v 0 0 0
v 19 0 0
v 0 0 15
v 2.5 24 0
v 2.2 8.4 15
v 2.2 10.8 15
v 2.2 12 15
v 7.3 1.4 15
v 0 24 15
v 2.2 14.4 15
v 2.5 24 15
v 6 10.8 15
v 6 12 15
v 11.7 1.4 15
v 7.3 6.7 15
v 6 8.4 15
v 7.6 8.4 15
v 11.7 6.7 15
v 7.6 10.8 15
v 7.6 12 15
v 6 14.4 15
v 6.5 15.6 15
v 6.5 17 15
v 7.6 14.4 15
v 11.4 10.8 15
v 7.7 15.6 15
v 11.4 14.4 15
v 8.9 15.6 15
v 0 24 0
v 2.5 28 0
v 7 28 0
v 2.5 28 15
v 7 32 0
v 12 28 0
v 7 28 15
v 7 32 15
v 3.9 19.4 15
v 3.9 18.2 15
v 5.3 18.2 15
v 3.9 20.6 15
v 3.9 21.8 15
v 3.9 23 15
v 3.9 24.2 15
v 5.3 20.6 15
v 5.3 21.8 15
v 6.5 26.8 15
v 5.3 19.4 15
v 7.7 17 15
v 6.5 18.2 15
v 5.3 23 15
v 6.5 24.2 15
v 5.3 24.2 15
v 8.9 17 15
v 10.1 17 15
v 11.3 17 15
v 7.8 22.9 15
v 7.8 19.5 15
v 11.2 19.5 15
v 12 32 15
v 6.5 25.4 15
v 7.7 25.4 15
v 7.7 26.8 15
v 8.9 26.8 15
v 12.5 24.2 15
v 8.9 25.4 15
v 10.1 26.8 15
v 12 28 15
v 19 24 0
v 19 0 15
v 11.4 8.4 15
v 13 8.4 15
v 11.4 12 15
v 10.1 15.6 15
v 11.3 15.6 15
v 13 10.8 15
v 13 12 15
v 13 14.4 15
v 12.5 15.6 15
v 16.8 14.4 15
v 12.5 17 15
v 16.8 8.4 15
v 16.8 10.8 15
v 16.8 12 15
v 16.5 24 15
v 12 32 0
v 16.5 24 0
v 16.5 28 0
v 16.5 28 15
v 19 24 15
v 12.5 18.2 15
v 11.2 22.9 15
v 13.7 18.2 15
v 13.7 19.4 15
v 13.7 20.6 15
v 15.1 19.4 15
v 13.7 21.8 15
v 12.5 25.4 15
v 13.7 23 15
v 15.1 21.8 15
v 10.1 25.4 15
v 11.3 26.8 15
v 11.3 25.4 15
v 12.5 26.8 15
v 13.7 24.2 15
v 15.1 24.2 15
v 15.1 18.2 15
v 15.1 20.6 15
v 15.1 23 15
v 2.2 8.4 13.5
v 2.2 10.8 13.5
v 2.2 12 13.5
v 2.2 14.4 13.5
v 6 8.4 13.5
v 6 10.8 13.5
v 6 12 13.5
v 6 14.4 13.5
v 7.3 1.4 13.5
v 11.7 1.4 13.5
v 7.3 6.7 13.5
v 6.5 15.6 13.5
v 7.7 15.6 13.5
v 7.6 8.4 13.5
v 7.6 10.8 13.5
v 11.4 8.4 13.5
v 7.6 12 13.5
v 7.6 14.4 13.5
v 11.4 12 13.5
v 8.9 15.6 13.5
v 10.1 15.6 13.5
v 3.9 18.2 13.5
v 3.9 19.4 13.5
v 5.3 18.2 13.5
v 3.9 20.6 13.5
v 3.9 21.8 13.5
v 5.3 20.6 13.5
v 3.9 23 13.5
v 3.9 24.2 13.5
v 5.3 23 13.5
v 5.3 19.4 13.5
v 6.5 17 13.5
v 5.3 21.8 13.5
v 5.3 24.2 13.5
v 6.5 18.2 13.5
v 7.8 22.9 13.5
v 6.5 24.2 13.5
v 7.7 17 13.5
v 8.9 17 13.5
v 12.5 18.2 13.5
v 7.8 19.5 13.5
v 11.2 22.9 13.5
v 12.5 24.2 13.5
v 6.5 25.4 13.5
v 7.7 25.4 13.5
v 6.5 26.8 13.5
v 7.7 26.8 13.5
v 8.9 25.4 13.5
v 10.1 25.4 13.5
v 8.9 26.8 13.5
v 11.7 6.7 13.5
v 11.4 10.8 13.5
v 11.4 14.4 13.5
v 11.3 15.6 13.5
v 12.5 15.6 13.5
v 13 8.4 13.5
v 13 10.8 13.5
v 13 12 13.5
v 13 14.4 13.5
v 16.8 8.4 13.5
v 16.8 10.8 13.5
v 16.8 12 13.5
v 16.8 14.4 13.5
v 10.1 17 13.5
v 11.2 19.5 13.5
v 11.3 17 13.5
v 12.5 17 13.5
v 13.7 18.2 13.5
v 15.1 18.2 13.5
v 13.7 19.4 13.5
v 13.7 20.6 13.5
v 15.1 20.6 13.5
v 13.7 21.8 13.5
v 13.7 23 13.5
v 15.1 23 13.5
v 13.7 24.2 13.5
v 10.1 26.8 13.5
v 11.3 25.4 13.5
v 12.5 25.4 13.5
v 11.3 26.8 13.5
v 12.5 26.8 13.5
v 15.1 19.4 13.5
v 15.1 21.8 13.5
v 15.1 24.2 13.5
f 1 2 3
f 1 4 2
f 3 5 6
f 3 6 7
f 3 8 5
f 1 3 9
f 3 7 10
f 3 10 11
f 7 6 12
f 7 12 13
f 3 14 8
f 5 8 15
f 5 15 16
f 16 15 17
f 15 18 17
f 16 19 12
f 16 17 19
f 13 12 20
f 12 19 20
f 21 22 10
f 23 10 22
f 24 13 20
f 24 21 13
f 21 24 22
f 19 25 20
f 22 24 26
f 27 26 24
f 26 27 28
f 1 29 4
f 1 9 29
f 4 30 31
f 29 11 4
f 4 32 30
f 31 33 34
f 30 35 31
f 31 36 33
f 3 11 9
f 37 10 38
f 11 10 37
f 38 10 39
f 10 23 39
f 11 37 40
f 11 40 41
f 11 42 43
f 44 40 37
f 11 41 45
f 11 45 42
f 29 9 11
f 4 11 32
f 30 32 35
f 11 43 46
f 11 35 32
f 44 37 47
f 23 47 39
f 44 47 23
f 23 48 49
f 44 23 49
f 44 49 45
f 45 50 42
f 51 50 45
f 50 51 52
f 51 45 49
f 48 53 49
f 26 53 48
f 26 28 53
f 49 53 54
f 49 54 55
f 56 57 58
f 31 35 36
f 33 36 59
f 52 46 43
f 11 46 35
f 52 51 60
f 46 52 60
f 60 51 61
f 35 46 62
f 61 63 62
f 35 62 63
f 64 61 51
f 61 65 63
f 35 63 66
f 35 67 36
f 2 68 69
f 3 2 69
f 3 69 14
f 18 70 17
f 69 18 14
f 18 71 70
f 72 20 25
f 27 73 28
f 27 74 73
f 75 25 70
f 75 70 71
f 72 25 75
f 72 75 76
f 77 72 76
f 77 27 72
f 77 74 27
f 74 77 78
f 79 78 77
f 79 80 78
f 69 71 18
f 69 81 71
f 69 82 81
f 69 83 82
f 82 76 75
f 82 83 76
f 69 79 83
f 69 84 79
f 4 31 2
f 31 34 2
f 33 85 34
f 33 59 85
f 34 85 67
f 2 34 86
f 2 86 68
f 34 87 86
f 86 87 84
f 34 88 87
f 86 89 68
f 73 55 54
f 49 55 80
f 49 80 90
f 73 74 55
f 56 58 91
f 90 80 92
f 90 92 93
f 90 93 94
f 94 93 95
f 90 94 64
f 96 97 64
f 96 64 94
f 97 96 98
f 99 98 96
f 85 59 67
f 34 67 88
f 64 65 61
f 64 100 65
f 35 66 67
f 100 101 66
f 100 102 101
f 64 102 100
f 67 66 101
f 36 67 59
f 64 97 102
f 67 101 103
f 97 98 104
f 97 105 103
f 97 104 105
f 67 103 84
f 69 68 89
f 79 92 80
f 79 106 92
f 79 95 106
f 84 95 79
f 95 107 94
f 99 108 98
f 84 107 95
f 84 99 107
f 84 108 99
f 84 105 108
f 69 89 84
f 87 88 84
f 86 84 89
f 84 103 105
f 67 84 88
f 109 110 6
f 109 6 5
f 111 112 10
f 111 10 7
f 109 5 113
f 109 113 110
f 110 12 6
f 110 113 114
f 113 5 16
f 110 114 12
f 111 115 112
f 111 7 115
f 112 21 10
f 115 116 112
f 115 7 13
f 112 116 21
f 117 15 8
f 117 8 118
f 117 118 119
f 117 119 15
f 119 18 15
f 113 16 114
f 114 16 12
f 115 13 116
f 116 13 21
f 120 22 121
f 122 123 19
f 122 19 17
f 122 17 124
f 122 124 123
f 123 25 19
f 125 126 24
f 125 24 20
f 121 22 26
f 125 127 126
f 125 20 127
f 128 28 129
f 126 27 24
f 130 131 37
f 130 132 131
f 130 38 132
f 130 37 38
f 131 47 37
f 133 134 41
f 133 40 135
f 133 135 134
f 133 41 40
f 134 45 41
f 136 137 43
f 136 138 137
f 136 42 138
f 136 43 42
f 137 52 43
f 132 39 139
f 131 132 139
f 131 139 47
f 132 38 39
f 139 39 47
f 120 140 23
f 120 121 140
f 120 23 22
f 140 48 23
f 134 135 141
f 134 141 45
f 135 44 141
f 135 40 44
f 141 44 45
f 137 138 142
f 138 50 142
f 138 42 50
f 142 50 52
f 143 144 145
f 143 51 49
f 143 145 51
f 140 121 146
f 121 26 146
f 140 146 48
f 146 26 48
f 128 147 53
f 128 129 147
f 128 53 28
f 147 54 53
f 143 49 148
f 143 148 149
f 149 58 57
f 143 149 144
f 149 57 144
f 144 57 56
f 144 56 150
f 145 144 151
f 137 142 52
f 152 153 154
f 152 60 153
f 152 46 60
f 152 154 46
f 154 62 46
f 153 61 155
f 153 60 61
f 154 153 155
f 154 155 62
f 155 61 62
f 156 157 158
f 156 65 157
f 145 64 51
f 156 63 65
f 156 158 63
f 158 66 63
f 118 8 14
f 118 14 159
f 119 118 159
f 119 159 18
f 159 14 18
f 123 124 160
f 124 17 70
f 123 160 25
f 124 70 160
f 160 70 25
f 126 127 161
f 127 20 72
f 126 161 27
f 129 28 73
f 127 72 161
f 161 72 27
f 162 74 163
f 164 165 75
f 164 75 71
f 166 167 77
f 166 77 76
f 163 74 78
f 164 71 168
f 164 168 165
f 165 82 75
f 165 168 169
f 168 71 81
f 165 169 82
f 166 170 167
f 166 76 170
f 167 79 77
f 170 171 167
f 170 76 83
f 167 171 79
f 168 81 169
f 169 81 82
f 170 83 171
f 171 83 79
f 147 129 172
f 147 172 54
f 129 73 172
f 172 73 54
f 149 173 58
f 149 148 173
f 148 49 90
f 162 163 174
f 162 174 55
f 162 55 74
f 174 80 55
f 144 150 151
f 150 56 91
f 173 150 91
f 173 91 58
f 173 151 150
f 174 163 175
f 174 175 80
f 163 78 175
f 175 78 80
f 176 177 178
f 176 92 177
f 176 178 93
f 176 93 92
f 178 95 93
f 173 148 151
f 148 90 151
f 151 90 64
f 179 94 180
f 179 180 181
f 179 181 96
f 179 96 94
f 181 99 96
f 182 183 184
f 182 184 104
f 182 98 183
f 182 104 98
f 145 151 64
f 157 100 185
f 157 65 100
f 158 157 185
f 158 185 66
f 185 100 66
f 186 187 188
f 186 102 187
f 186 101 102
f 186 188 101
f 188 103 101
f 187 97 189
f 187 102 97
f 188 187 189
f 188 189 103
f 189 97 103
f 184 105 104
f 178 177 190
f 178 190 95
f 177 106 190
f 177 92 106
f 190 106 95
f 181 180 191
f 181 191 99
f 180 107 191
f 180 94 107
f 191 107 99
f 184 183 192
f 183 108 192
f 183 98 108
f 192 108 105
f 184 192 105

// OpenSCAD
// Building miniatures — Tech, AI & Digital
// Units: millimetres. X = width; Y = facade height; Z = depth.
// Print flat on the back at Z=0. Front Z=15; recesses are 1.5 mm deep.
$fn=96;
depth=15;
recess=1.5;
module rect(x,y,w,h) { translate([x,y]) square([w,h]); }
module disc(x,y,r) { translate([x,y]) circle(r=r); }
module rr(x,y,w,h,r=1) { hull() for(a=[x+r,x+w-r],b=[y+r,y+h-r]) disc(a,b,r); }
module stroke(a,b,w=1.4) { hull() {disc(a[0],a[1],w/2);disc(b[0],b[1],w/2);} }
module ring(x,y,r,w=1.4) { difference(){disc(x,y,r);disc(x,y,r-w);} }
module framed(x,y,w,h,t=1.4) { difference(){rect(x,y,w,h);rect(x+t,y+t,w-2*t,h-2*t);} }
module arrow(a,b,w=1.5) { v=b-a; u=v/norm(v); n=[-u[1],u[0]]; tip=b; neck=b-u*2.8; stroke(a,neck,w); polygon([tip,neck+n*1.9,neck-n*1.9]); }
module building(){difference(){linear_extrude(height=depth) silhouette();translate([0,0,depth-recess]) linear_extrude(height=recess+0.2) details();}}
building();

module silhouette(){polygon([[0,0],[19,0],[19,24],[16.5,24],[16.5,28],[12,28],[12,32],[7,32],[7,28],[2.5,28],[2.5,24],[0,24]]);}
module details(){
 rect(7.3,1.4,4.4,5.3);
 for(x=[2.2,7.6,13.0],y=[8.4,12.0]) rect(x,y,3.8,2.4);
 framed(6.5,18.2,6,6,1.3);
 for(x=[6.5,8.9,11.3]){rect(x,15.6,1.2,1.4);rect(x,25.4,1.2,1.4);}
 for(y=[18.2,20.6,23.0]){rect(3.9,y,1.4,1.2);rect(13.7,y,1.4,1.2);}
}
